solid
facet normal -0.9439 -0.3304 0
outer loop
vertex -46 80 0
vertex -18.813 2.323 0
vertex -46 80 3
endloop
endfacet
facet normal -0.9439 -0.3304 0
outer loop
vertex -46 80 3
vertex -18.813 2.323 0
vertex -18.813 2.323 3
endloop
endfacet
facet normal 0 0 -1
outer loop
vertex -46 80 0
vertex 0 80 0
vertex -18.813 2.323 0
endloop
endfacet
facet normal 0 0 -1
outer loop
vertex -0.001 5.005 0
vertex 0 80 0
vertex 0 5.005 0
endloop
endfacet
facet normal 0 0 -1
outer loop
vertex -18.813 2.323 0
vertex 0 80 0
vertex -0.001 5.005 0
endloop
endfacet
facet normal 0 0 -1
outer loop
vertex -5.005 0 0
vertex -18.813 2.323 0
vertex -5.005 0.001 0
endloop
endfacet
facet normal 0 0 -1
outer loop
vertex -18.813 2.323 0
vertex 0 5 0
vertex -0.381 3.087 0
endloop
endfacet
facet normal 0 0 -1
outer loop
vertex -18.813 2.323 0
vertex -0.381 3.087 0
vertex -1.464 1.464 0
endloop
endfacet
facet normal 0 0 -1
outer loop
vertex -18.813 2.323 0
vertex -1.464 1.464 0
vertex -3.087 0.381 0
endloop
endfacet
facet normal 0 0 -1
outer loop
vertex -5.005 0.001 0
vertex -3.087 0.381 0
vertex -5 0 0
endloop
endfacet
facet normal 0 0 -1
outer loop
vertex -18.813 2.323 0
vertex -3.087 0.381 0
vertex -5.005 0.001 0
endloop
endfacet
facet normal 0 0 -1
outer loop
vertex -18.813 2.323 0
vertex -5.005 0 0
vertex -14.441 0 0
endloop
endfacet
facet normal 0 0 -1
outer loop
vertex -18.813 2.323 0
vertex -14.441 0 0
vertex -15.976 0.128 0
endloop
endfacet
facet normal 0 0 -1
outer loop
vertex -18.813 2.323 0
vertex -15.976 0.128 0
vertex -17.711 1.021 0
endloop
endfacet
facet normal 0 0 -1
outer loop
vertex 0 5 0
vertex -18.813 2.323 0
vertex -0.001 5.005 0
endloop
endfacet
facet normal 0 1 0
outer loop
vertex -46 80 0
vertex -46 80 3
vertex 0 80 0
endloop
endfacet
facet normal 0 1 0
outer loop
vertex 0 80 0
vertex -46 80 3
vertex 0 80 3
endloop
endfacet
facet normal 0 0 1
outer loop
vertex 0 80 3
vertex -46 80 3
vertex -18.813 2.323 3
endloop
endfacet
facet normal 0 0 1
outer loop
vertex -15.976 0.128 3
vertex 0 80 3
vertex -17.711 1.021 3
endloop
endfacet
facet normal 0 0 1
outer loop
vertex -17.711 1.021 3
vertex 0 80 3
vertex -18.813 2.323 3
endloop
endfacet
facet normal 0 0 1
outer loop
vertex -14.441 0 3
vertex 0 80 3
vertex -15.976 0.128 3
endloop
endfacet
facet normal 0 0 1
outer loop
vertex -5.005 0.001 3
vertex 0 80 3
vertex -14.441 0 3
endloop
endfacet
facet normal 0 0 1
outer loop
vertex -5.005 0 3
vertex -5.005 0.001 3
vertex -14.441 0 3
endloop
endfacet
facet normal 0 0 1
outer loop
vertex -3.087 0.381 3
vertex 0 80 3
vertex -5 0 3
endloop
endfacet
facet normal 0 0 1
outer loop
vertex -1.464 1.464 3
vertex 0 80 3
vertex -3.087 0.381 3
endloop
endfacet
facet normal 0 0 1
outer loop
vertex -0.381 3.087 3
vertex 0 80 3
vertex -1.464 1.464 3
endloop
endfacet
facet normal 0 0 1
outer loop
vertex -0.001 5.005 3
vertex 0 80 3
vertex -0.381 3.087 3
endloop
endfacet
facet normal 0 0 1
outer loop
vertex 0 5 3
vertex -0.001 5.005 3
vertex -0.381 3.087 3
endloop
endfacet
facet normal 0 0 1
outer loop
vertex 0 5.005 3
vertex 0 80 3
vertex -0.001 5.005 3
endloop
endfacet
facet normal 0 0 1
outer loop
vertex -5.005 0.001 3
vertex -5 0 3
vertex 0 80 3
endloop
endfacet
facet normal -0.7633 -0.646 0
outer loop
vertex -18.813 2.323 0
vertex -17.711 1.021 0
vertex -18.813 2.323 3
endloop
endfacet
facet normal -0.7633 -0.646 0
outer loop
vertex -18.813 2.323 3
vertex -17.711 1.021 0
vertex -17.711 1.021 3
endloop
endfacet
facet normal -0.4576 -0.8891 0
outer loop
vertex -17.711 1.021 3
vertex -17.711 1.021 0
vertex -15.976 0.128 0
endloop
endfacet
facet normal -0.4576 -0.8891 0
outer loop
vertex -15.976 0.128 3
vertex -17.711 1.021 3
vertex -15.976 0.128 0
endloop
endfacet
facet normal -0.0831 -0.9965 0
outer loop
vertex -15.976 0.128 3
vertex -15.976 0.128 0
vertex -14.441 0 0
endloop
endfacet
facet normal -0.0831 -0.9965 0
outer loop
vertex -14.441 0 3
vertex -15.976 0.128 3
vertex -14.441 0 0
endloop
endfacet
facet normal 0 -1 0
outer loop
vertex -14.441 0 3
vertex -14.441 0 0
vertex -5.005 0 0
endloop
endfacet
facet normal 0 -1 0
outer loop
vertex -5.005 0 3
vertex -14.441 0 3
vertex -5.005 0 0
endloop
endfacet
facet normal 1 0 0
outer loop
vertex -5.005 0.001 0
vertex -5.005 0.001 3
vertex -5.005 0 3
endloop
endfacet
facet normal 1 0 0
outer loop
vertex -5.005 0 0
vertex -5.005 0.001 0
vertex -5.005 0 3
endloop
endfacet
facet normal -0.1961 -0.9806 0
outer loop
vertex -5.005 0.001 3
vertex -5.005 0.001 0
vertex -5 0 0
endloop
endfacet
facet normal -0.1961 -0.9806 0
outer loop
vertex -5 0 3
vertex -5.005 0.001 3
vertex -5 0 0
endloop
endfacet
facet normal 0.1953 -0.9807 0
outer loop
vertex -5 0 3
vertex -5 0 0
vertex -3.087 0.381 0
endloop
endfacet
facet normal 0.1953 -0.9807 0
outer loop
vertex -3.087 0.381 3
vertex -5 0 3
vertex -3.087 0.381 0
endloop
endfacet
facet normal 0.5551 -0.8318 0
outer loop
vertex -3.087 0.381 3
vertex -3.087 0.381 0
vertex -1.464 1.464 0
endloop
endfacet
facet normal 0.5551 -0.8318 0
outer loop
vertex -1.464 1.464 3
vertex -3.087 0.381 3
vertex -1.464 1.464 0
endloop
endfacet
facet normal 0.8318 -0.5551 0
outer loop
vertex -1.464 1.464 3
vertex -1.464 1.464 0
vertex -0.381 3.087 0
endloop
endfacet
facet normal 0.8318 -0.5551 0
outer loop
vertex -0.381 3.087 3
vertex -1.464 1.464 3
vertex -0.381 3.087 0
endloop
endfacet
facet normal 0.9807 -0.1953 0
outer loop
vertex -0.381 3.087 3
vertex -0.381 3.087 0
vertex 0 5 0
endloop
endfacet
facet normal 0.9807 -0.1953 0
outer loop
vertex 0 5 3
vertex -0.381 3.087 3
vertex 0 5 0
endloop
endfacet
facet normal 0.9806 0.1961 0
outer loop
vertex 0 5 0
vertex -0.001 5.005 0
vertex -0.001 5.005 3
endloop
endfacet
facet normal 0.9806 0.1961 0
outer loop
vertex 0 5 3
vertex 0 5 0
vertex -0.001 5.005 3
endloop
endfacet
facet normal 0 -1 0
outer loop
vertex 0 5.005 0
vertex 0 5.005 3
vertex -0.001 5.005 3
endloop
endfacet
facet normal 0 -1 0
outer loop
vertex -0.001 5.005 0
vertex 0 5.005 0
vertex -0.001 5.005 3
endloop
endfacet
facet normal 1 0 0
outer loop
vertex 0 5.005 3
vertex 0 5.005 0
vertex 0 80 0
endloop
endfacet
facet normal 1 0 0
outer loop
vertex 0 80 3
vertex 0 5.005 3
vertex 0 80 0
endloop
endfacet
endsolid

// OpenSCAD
module wedge(len,dep,ht,wht){

rotate([0,-90,0])polyhedron(
        points=[ [0,0,0],[0,dep,0],[0,dep,wht],
                [0,0,ht],[len,dep,0],[len,dep,wht],
                [len,0,ht],[len,0,0] ],
        triangles= [
                [0,1,2],[2,3,0], // R-side
                [4,5,1],[5,2,1], // Front vertical
                [2,5,6],[6,3,2], // Front slant
                [7,5,4],[7,6,5], // L side
                [0,3,7],[3,6,7], // Back vertical
                [0,7,1],[1,7,4]  // Bottom
                ]);
} 

module fillet(r, h) {
    translate([r / 2, r / 2, 0])

        difference() {
            cube([r + 0.01, r + 0.01, h], center = true);

            translate([r/2, r/2, 0])
                cylinder(r = r, h = h + 1, center = true);

        }
}


module poludronside()
{
	difference()
	{
		wedge(3,80,18,46);
		#translate([0,0,0])rotate([0,0,90])fillet(5, 10);
		#translate([-19,-0.6,0])rotate([0,0,6.5])fillet(5, 10);
	}
}
poludronside();
